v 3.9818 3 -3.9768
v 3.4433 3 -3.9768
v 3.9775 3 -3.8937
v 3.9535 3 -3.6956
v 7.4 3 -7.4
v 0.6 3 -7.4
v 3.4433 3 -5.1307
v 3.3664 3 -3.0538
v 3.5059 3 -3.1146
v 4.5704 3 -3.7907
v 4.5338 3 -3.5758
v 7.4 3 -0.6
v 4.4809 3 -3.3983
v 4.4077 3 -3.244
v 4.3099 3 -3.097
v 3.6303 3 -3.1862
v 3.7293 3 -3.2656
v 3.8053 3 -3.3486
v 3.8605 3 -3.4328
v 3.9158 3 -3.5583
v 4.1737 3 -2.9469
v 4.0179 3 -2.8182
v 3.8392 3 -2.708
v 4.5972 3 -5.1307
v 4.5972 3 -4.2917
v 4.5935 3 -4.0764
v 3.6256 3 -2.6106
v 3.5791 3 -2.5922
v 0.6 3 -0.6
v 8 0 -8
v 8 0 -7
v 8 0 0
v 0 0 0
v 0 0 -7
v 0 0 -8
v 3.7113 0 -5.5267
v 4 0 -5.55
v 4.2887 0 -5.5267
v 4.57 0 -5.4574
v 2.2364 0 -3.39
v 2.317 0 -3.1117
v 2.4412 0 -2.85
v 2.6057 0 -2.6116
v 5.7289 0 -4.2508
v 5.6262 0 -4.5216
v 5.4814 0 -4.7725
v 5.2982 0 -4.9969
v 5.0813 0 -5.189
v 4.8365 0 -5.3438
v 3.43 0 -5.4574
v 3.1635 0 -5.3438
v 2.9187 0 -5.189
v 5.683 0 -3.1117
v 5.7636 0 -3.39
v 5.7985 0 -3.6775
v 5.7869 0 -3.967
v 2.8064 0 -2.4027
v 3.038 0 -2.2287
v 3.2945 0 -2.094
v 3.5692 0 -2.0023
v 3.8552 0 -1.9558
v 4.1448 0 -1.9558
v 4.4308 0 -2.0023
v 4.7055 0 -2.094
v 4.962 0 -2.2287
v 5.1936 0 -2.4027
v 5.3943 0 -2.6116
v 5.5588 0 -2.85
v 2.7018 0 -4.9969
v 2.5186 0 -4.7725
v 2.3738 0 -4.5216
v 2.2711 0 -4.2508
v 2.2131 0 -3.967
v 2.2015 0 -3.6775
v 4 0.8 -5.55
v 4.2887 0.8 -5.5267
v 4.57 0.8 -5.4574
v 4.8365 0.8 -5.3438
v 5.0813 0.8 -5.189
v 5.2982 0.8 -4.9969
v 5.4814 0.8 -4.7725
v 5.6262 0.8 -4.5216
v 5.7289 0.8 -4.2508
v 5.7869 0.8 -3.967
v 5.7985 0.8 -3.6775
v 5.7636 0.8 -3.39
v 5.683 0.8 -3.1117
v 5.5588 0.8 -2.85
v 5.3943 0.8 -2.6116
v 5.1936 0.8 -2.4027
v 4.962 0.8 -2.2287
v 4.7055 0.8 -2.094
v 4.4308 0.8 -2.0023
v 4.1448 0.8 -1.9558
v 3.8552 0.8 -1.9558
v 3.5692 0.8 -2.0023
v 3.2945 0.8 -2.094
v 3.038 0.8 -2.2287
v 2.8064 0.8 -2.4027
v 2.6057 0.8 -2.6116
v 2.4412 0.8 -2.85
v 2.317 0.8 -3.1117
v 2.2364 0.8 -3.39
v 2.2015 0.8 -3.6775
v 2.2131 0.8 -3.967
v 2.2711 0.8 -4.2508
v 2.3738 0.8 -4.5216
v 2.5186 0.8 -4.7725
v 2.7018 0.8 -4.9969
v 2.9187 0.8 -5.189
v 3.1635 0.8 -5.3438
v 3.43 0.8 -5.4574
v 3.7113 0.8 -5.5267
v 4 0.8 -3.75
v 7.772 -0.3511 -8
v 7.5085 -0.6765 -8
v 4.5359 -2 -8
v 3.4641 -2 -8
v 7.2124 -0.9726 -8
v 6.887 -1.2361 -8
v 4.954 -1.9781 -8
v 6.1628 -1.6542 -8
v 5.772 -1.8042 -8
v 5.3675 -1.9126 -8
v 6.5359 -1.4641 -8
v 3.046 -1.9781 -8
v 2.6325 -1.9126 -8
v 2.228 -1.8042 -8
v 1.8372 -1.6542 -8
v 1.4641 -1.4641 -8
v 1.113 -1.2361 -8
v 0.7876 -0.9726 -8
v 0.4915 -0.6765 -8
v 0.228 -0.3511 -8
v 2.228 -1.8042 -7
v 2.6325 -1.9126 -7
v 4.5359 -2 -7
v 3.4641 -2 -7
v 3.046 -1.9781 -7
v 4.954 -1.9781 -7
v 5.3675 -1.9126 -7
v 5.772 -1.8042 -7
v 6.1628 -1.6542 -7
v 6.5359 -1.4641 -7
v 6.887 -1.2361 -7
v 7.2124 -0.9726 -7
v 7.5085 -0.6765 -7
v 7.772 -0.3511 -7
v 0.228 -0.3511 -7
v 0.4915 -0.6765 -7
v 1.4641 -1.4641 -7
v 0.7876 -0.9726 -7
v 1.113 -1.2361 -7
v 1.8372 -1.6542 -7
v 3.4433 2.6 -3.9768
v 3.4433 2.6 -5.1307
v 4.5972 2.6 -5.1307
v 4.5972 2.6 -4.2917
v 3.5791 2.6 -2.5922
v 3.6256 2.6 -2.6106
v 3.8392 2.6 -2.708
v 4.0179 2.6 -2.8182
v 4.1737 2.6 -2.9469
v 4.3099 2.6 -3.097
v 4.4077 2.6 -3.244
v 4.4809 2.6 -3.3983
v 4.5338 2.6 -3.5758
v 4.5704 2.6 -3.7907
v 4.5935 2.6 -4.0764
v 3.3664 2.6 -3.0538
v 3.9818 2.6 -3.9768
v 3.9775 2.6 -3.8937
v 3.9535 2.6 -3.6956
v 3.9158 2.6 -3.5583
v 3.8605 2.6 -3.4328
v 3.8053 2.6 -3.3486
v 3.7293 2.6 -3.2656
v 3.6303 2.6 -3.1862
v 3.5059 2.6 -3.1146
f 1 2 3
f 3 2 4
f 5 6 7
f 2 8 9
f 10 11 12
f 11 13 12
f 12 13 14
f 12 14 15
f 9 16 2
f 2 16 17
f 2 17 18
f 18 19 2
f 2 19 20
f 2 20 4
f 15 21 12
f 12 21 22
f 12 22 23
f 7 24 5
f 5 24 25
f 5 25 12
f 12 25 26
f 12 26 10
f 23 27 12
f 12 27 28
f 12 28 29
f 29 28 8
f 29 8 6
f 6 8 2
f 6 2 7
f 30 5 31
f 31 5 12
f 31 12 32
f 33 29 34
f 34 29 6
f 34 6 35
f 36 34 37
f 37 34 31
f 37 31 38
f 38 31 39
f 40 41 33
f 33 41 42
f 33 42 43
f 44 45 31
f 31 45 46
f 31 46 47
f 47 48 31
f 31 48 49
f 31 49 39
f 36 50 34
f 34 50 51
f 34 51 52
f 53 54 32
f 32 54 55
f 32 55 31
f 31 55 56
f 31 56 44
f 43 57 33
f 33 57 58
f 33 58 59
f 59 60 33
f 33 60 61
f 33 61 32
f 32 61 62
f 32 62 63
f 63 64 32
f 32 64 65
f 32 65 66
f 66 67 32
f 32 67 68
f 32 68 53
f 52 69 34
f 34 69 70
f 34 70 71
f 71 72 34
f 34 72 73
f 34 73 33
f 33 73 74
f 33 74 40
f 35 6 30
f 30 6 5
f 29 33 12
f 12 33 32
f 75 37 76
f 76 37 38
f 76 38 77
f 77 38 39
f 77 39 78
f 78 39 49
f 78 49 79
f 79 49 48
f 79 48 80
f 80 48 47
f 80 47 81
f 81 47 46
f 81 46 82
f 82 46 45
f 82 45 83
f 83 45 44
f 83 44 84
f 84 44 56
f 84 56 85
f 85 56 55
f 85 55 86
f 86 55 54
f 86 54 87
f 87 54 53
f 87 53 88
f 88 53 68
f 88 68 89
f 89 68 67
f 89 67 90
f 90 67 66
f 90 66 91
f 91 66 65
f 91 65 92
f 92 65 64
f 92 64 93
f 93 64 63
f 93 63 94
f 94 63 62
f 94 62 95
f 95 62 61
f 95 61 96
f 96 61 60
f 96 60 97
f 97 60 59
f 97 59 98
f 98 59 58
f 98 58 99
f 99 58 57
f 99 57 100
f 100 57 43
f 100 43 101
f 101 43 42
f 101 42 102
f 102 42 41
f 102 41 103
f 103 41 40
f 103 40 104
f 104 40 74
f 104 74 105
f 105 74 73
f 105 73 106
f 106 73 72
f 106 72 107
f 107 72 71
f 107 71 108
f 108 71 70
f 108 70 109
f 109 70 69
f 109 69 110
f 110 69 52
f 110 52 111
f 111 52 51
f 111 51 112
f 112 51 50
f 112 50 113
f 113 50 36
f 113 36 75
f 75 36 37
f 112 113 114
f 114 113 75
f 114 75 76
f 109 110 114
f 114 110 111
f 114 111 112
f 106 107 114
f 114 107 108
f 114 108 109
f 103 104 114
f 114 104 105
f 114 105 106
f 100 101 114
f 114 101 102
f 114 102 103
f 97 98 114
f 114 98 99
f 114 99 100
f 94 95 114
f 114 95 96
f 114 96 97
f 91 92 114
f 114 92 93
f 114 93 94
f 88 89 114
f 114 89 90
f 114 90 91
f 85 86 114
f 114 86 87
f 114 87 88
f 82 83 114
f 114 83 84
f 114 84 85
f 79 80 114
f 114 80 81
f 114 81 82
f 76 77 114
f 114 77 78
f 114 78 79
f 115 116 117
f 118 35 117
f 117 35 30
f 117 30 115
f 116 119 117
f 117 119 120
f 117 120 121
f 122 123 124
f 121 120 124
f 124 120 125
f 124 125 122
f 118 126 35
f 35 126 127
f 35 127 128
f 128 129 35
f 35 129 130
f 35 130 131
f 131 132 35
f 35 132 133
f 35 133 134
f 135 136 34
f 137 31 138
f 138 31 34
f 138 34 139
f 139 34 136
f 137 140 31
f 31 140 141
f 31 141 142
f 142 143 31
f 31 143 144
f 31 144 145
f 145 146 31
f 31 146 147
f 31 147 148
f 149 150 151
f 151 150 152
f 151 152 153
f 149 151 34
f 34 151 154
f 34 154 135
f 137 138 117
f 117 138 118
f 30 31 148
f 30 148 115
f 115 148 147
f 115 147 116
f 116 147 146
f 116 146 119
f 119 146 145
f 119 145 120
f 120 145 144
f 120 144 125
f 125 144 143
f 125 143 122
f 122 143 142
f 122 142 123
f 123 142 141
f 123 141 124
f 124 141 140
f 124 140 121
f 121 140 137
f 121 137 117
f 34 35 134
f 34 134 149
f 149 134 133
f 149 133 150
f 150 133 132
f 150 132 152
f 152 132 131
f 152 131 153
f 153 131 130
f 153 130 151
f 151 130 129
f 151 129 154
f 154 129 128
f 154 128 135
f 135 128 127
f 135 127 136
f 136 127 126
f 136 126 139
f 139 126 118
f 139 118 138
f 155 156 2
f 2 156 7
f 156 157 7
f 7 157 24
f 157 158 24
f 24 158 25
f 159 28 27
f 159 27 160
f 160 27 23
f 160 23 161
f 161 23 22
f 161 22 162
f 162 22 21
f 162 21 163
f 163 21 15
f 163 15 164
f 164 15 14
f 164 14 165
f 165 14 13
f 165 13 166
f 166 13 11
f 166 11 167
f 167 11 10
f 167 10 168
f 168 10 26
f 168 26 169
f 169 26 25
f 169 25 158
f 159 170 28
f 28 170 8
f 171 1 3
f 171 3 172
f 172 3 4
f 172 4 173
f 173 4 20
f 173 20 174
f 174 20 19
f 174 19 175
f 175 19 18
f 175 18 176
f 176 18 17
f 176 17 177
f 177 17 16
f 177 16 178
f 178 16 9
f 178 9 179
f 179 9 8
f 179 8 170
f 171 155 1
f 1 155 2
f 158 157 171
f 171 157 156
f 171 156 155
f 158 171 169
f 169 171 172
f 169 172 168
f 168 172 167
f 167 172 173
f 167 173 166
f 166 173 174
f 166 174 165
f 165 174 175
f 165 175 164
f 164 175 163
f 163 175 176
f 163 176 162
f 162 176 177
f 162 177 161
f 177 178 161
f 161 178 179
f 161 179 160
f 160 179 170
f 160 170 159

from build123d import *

# Parameters (mm, degrees)
SKETCH1_W               = 8
SKETCH1_H               = 8
BOSS_EXTRUDE1_DEPTH     = 3
CUT_EXTRUDE1_DEPTH      = 12.704699911
CUT_EXTRUDE1_DEPTH_BACK = 12.704699911
CUT_EXTRUDE2_DEPTH      = 11
SKETCH4_R               = 1.8
CUT_EXTRUDE3_DEPTH      = 0.8
SKETCH5_W               = 8
SKETCH5_H               = 1
BOSS_EXTRUDE2_DEPTH     = 2
FILLET1_R               = 4
CUT_EXTRUDE4_DEPTH      = 0.4


with BuildPart() as part:
    # Sketch1 → Boss-Extrude1 (new body)
    with BuildSketch(Plane(origin=(0, 0, 0), x_dir=(1, 0, 0), z_dir=(0, 1, 0))):
        with Locations((4, 4)):
            Rectangle(SKETCH1_W, SKETCH1_H)
    extrude(amount=BOSS_EXTRUDE1_DEPTH)

    # Sketch2 → Cut-Extrude1 (cut, two sides: drawn at the far end of the back side and taken through both)
    with BuildSketch(Plane.XY.offset(-CUT_EXTRUDE1_DEPTH_BACK)):
        Polygon((0, 0), (0.6, 3), (0, 3), align=None)
        Polygon((8, 0), (7.4, 3), (8, 3), align=None)
    extrude(amount=CUT_EXTRUDE1_DEPTH + CUT_EXTRUDE1_DEPTH_BACK, mode=Mode.SUBTRACT)

    # Sketch3 → Cut-Extrude2 (cut)
    with BuildSketch(Plane(origin=(0, 0, 0), x_dir=(0, 0, -1), z_dir=(1, 0, 0))):
        Polygon((0, 0), (0.6, 3), (0, 3), align=None)
        Polygon((8, 3), (7.4, 3), (8, 0), align=None)
    extrude(amount=CUT_EXTRUDE2_DEPTH, mode=Mode.SUBTRACT)

    # Sketch4 → Cut-Extrude3 (cut)
    with BuildSketch(Plane.XZ):
        with Locations(Location((4, -3.75, 0), (0, 0, 270))):
            Circle(SKETCH4_R)
    extrude(amount=-CUT_EXTRUDE3_DEPTH, mode=Mode.SUBTRACT)

    # Sketch5 → Boss-Extrude2 (add)
    with BuildSketch(Plane.XZ):
        with Locations((4, -7.5)):
            Rectangle(SKETCH5_W, SKETCH5_H)
    extrude(amount=BOSS_EXTRUDE2_DEPTH)

    # Fillet1
    # the kernel refuses this fillet: 4 mm, written as the material it takes off along each edge
    with BuildSketch(Plane(origin=(8, -2, -16.660254038), x_dir=(0, 1, 0), z_dir=(0, 0, 1)), Plane(origin=(0, -2, 1.660254038), x_dir=(0, 1, 0), z_dir=(0, 0, -1))) as fillet1_piece_1:
        with BuildLine():
            CenterArc((4, 3.464101615), FILLET1_R, 180, 60)
            Line((0, 3.464101615), (-0.08, 3.464101615))
            Line((-0.08, 3.464101615), (-0.08, 0))
            Line((-0.08, 0), (0, -0.08))
            ThreePointArc((0, -0.08), (1, -0.08), (1.96, -0.069282032))
            Line((1.96, -0.069282032), (2, 0))
        make_face()
    extrude(amount=18.320508076, mode=Mode.SUBTRACT)

    # Sketch6 → Cut-Extrude4 (cut)
    with BuildSketch(Plane(origin=(0, 3, 0), x_dir=(1, 0, 0), z_dir=(0, 1, 0))):
        with BuildLine():
            Line((3.443331895, 5.130686034), (4.597178049, 5.130686034))
            Line((4.597178049, 5.130686034), (4.597178049, 4.291743727))
            add(Edge.make_bspline(
                [(4.597178049, 4.291743727), (4.596645702, 4.211170655), (4.595640561, 4.059038126), (4.578021597, 3.844434295), (4.553540207, 3.655975372), (4.51459395, 3.491238943), (4.462448704, 3.342468302), (4.388723742, 3.206338125), (4.298056147, 3.076066307), (4.187154731, 2.955594738), (4.059577941, 2.844170634), (3.913847481, 2.747275335), (3.753421756, 2.660946408), (3.638168327, 2.615497851), (3.579149203, 2.592224496)],
                knots=[0, 0, 0, 0, 1.347156832, 2.543608823, 3.599300285, 4.522475688, 5.370350604, 6.227678973, 7.103274953, 8.018757603, 8.959280198, 9.929437417, 10.939703653, 12, 12, 12, 12], degree=3))
            Line((3.579149203, 2.592224496), (3.366408818, 3.053762957))
            add(Edge.make_bspline(
                [(3.366408818, 3.053762957), (3.417874874, 3.07492834), (3.516080495, 3.11531534), (3.647721841, 3.193115232), (3.754216523, 3.284666717), (3.839841548, 3.388423011), (3.901059293, 3.510472084), (3.947065575, 3.648752862), (3.973734578, 3.806802537), (3.979016553, 3.918249261), (3.981793434, 3.976839881)],
                knots=[0, 0, 0, 0, 1.113959817, 2.125616841, 3.047494432, 3.914868512, 4.801521967, 5.765947312, 6.825496818, 8, 8, 8, 8], degree=3))
            Line((3.981793434, 3.976839881), (3.443331895, 3.976839881))
            Line((3.443331895, 3.976839881), (3.443331895, 5.130686034))
        make_face()
    extrude(amount=-CUT_EXTRUDE4_DEPTH, mode=Mode.SUBTRACT)


solid = part.part
